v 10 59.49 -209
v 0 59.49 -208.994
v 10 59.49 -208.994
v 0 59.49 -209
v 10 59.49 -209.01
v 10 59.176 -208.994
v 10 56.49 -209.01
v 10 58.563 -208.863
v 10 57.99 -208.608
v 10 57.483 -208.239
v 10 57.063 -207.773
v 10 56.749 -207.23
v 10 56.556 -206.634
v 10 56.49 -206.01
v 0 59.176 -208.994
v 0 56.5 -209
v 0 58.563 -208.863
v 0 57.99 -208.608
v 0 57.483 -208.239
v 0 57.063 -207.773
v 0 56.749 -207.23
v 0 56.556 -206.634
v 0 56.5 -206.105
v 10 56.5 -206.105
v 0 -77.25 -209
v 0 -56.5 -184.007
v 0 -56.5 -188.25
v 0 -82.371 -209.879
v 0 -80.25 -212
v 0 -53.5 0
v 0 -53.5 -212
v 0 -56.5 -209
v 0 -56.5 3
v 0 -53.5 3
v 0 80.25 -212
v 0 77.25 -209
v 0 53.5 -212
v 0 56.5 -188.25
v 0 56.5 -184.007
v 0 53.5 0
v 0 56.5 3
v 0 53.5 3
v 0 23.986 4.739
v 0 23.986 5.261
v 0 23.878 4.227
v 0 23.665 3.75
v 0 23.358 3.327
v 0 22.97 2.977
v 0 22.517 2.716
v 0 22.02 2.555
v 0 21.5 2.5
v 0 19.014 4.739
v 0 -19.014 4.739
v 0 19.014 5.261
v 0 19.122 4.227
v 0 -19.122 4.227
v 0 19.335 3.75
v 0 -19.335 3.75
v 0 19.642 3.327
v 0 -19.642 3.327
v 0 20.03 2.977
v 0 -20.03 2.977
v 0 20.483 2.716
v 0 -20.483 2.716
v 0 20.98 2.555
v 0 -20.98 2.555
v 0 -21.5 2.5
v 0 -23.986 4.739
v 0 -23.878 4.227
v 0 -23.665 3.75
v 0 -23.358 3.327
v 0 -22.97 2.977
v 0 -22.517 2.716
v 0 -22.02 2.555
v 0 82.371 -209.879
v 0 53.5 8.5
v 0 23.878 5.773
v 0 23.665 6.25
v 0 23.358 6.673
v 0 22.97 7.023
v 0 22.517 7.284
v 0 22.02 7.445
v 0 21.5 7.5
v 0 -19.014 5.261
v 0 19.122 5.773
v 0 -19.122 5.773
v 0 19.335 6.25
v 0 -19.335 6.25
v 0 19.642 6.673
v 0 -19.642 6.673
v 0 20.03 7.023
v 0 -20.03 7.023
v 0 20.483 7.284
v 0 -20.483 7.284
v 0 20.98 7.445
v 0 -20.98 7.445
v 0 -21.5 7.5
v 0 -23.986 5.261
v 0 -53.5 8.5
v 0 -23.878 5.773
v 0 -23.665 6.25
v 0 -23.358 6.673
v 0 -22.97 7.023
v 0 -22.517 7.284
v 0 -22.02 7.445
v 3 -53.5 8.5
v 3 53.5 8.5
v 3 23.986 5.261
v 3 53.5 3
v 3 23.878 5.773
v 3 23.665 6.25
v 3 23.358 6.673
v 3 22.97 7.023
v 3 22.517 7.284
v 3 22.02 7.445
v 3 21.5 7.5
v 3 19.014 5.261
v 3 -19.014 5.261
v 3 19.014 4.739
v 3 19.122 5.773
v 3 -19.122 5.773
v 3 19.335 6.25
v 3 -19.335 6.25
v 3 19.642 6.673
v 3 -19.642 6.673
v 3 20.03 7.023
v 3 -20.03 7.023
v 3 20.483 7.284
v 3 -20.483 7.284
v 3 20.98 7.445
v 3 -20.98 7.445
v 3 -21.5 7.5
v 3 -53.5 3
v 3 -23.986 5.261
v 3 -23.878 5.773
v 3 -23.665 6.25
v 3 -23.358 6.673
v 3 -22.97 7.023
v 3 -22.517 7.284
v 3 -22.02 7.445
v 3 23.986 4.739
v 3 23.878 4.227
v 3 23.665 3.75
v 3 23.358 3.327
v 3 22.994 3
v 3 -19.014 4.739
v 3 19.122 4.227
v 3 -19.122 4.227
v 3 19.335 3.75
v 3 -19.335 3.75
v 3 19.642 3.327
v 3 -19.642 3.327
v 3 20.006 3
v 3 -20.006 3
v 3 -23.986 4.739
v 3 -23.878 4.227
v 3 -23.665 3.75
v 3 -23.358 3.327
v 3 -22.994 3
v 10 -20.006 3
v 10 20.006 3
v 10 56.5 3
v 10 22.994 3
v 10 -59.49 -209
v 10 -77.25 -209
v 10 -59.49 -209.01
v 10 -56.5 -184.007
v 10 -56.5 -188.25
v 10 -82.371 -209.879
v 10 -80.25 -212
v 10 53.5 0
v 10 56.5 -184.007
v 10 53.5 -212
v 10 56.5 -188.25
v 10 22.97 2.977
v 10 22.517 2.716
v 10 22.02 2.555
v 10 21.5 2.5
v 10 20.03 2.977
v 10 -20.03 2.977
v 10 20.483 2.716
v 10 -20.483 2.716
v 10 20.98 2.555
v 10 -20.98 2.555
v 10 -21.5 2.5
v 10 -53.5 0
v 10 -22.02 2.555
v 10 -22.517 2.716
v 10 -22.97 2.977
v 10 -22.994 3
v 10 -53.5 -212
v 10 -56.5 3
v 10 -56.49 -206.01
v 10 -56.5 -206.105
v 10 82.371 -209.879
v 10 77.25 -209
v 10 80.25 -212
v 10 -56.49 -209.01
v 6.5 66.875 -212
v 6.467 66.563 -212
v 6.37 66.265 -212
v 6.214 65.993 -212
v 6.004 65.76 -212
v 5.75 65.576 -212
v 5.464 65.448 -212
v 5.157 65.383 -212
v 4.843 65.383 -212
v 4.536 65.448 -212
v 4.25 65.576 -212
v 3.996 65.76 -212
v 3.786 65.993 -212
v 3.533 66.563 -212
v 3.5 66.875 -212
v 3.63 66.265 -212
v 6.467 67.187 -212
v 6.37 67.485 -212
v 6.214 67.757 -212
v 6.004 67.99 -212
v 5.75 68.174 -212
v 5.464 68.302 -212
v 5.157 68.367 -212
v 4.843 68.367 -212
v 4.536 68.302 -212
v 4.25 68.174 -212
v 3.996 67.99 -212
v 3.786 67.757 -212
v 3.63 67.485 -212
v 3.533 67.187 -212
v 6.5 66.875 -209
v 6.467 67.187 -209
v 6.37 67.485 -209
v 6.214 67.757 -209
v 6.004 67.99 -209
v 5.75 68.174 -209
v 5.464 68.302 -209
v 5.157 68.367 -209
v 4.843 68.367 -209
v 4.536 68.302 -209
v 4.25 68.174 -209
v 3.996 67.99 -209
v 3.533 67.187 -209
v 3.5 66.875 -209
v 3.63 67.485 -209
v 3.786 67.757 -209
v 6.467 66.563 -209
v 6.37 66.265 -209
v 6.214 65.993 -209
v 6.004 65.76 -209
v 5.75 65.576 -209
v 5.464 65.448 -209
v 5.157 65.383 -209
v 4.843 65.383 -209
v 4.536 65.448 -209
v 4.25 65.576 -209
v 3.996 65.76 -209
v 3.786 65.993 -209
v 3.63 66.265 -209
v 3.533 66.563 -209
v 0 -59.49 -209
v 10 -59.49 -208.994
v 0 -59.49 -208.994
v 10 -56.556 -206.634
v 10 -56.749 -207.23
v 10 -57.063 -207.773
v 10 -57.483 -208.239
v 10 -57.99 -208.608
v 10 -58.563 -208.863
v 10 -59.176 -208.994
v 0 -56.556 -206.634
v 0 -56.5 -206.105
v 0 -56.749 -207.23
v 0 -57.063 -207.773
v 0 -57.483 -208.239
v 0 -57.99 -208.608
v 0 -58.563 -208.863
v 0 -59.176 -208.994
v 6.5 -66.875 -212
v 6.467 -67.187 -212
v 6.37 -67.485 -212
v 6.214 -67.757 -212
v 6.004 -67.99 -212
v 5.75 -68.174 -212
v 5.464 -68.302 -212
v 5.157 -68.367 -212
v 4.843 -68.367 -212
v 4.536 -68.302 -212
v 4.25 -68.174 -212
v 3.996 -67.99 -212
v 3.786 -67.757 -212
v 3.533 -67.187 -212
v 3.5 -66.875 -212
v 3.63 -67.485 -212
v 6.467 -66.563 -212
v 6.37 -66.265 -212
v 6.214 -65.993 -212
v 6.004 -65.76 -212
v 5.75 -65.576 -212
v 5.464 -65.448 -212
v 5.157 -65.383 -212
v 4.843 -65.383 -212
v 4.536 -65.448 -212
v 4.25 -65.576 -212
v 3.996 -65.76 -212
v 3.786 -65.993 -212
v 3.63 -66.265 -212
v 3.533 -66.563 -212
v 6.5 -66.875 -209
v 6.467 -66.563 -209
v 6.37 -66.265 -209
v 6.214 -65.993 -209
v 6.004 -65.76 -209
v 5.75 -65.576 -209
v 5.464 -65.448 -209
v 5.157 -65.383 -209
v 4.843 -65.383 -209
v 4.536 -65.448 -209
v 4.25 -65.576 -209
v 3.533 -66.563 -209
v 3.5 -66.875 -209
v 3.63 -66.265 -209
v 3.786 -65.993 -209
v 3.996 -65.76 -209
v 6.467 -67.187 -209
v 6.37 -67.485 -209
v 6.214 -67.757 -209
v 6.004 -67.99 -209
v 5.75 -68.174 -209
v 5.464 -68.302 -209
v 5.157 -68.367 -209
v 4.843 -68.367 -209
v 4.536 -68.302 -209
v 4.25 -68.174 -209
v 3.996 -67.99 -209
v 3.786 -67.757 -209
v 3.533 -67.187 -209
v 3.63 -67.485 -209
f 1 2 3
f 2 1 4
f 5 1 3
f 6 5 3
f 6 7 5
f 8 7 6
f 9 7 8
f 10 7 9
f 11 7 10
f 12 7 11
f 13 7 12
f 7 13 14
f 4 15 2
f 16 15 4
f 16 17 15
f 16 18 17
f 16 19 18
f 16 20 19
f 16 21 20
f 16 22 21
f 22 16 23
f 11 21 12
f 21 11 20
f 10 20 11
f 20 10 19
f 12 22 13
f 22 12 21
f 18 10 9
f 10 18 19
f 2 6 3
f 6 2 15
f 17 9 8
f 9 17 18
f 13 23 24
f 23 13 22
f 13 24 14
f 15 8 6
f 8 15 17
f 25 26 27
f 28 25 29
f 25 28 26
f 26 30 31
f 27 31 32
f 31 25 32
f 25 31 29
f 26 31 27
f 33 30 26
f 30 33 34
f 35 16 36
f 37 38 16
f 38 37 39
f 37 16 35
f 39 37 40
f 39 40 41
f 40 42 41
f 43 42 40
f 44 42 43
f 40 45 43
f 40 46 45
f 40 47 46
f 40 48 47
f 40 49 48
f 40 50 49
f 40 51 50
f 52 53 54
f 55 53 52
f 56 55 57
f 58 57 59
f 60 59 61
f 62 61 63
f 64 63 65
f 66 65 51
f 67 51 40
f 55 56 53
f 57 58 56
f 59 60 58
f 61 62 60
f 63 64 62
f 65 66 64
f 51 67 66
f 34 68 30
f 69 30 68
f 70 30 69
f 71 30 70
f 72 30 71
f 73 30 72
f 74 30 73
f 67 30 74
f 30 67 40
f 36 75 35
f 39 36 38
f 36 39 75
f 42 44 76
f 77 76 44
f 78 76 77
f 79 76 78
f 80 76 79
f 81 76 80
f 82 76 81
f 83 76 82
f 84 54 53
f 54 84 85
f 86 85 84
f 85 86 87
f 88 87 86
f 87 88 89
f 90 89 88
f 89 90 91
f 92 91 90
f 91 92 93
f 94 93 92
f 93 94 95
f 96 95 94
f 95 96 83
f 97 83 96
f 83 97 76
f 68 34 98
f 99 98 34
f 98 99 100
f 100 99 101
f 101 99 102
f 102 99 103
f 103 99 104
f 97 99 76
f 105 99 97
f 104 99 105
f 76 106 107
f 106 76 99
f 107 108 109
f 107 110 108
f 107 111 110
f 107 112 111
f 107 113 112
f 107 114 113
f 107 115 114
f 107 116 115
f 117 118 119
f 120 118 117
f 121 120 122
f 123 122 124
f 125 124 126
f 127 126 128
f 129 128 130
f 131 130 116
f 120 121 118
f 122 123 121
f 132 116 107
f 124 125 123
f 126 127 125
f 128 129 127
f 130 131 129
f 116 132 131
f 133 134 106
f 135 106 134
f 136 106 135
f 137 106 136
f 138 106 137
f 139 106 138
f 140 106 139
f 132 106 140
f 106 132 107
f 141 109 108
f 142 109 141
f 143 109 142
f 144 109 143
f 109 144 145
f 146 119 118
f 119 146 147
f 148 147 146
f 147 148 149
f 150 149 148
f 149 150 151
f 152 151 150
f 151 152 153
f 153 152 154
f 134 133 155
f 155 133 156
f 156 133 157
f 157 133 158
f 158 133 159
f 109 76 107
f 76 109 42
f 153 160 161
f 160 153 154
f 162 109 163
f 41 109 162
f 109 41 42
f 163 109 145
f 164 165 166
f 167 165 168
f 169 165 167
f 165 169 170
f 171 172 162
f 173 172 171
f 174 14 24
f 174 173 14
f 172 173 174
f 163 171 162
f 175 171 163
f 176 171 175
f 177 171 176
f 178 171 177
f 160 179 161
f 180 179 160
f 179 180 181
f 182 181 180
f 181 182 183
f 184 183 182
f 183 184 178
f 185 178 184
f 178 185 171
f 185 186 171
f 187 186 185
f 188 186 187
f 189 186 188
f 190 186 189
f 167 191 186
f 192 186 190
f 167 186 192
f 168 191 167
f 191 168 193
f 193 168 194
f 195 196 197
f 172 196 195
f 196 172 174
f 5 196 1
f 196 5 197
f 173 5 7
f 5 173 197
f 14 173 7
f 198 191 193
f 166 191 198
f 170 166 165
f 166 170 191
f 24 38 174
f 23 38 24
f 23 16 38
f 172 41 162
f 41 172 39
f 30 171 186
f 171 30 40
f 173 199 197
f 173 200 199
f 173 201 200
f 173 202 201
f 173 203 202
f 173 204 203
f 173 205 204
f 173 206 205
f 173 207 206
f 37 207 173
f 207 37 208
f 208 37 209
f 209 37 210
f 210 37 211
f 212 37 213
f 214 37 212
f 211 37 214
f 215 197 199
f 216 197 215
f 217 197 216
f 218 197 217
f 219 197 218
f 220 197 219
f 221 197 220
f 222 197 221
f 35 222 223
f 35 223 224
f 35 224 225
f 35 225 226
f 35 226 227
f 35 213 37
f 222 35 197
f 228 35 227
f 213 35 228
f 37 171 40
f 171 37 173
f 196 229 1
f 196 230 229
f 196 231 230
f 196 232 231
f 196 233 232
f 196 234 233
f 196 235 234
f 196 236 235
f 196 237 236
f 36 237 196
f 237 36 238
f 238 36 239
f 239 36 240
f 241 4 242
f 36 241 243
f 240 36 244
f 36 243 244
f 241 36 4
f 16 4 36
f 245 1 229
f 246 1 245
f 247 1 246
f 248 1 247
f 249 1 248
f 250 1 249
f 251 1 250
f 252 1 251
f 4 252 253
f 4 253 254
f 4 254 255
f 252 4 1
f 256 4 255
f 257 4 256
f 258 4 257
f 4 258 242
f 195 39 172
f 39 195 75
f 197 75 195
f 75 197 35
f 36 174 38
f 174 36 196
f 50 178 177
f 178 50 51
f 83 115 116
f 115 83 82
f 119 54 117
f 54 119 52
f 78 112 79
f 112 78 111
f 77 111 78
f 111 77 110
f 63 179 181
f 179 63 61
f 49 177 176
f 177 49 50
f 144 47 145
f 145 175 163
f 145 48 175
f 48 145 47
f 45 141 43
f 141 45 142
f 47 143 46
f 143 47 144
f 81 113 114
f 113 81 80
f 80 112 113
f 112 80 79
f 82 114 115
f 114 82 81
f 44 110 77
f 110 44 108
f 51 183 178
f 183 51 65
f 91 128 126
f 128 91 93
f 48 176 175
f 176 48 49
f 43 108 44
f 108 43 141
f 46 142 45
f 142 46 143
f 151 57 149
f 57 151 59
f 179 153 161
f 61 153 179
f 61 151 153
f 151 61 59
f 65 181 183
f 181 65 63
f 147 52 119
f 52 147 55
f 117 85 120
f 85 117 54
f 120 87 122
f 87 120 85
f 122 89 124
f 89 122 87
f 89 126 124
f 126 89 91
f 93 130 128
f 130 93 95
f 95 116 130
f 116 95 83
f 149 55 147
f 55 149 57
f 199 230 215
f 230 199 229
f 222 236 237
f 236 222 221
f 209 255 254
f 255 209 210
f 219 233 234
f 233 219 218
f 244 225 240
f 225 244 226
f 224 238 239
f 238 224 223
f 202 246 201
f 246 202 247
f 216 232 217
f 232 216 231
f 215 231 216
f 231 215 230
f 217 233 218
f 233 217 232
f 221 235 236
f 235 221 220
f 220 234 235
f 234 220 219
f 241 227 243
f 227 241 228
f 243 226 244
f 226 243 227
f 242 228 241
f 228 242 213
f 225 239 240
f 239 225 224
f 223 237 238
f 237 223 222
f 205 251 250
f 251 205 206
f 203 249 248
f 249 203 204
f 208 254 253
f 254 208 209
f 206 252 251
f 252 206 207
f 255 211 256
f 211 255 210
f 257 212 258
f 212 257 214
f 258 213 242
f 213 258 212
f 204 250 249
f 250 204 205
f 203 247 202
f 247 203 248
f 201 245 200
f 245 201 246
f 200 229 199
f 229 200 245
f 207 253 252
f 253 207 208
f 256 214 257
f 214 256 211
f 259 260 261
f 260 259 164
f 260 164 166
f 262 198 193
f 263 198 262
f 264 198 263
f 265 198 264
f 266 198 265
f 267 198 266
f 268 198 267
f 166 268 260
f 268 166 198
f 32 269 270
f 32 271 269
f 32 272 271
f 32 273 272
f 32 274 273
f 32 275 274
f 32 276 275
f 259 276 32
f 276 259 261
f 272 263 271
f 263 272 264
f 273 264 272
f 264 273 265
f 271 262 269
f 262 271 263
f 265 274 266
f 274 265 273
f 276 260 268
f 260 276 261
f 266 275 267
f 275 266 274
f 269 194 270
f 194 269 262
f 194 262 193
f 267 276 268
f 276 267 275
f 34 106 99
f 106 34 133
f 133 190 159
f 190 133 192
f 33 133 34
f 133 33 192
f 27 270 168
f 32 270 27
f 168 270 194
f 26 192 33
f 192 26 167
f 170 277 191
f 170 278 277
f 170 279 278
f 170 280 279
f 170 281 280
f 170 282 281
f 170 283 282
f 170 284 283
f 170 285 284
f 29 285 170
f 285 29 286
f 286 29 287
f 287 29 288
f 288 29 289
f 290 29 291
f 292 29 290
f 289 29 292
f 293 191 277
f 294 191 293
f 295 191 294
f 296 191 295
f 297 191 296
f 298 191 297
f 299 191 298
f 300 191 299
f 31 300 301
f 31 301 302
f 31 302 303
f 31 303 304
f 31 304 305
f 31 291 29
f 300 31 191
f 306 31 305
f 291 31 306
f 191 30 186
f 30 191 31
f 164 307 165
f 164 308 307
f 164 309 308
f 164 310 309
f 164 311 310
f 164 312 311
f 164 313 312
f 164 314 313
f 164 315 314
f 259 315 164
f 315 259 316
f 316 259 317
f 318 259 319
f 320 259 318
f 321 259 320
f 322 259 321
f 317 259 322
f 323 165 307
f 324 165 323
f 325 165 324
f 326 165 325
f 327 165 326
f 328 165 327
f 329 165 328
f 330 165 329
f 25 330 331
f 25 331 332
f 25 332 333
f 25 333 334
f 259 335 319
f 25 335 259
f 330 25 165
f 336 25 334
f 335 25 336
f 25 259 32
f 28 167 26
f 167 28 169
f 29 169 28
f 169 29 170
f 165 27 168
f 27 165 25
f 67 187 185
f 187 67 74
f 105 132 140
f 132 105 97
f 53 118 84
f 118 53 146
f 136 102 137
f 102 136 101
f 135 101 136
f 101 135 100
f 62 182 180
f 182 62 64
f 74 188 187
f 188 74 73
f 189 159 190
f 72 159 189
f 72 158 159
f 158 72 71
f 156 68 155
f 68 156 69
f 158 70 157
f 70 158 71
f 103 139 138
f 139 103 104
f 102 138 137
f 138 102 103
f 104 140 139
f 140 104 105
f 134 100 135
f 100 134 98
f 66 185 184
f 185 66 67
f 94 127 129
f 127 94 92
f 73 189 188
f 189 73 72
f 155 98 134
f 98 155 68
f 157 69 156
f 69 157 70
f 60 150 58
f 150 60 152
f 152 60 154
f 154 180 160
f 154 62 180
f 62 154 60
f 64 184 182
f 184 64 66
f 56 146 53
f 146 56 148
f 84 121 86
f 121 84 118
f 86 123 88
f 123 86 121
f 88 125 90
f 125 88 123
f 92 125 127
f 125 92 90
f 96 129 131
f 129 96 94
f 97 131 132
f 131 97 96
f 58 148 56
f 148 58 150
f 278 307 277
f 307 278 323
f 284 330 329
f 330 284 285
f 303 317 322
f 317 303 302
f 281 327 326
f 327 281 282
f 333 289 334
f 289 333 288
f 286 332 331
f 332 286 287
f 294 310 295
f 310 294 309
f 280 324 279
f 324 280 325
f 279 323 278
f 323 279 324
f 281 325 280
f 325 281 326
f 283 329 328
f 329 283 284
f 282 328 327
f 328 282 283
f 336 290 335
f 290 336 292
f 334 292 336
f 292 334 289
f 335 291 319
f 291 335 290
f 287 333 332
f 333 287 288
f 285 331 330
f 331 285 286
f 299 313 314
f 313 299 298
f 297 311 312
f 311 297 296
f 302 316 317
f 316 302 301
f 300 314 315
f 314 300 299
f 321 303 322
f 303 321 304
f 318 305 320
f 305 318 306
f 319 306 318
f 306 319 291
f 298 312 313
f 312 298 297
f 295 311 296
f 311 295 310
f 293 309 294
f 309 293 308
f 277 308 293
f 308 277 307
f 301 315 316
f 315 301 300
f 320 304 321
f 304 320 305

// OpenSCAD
// 3D Scanner Frame
// Designed for use with Hyperspectral Camera system

// Variables
bar_screw_size=3; // in mm
frame_thickness=3; 
$fn=30; // fix constant 
frame_width=10;

// Constants (may still need adjustment for printing)
top_screw_size=5; 
top_length=107; 
side_length=212;
fudge=0.01;


module rounded_corner(length,radius){
    difference(){
        cube([radius,radius, length]);
        translate([0,0,-0.5])
        cylinder(r=radius,h=length+1);
    }
}

module frame_half(){
    difference(){
        union(){
            //top
            translate([0,0,2.5])
            cube([frame_thickness, top_length/2, 6]);
            cube([frame_width, top_length/2+frame_thickness, frame_thickness]);
            //side
            translate([0,top_length/2,-side_length])
            cube([frame_width, frame_thickness, side_length]);
            //bottom
            translate([0,top_length/2,-side_length])
            cube([frame_width, top_length/4, frame_thickness]);
            translate([0,top_length/2+frame_thickness*2-fudge,-side_length+frame_thickness*2-fudge])
            rotate([0,90,0])
            rotate([0,0,270])
            rounded_corner(frame_width,frame_thickness);
            translate([0,top_length/2,-side_length+top_length/4])
            rotate([-45,0,0])
            cube([frame_width,(top_length/4)*sqrt(2),frame_thickness]);
        }
        // screws
        translate([-fudge,top_length/2-32,5])
        rotate([0,90,0])
        cylinder(d=top_screw_size,h=frame_thickness*4);
        translate([frame_width/2,top_length/2+top_length/8,-side_length])
        cylinder(d=bar_screw_size,h=frame_thickness*2);
    }
}

module frame(){
    union(){
    frame_half();
    mirror([0,1,0])
    frame_half();
    }
}

frame();
